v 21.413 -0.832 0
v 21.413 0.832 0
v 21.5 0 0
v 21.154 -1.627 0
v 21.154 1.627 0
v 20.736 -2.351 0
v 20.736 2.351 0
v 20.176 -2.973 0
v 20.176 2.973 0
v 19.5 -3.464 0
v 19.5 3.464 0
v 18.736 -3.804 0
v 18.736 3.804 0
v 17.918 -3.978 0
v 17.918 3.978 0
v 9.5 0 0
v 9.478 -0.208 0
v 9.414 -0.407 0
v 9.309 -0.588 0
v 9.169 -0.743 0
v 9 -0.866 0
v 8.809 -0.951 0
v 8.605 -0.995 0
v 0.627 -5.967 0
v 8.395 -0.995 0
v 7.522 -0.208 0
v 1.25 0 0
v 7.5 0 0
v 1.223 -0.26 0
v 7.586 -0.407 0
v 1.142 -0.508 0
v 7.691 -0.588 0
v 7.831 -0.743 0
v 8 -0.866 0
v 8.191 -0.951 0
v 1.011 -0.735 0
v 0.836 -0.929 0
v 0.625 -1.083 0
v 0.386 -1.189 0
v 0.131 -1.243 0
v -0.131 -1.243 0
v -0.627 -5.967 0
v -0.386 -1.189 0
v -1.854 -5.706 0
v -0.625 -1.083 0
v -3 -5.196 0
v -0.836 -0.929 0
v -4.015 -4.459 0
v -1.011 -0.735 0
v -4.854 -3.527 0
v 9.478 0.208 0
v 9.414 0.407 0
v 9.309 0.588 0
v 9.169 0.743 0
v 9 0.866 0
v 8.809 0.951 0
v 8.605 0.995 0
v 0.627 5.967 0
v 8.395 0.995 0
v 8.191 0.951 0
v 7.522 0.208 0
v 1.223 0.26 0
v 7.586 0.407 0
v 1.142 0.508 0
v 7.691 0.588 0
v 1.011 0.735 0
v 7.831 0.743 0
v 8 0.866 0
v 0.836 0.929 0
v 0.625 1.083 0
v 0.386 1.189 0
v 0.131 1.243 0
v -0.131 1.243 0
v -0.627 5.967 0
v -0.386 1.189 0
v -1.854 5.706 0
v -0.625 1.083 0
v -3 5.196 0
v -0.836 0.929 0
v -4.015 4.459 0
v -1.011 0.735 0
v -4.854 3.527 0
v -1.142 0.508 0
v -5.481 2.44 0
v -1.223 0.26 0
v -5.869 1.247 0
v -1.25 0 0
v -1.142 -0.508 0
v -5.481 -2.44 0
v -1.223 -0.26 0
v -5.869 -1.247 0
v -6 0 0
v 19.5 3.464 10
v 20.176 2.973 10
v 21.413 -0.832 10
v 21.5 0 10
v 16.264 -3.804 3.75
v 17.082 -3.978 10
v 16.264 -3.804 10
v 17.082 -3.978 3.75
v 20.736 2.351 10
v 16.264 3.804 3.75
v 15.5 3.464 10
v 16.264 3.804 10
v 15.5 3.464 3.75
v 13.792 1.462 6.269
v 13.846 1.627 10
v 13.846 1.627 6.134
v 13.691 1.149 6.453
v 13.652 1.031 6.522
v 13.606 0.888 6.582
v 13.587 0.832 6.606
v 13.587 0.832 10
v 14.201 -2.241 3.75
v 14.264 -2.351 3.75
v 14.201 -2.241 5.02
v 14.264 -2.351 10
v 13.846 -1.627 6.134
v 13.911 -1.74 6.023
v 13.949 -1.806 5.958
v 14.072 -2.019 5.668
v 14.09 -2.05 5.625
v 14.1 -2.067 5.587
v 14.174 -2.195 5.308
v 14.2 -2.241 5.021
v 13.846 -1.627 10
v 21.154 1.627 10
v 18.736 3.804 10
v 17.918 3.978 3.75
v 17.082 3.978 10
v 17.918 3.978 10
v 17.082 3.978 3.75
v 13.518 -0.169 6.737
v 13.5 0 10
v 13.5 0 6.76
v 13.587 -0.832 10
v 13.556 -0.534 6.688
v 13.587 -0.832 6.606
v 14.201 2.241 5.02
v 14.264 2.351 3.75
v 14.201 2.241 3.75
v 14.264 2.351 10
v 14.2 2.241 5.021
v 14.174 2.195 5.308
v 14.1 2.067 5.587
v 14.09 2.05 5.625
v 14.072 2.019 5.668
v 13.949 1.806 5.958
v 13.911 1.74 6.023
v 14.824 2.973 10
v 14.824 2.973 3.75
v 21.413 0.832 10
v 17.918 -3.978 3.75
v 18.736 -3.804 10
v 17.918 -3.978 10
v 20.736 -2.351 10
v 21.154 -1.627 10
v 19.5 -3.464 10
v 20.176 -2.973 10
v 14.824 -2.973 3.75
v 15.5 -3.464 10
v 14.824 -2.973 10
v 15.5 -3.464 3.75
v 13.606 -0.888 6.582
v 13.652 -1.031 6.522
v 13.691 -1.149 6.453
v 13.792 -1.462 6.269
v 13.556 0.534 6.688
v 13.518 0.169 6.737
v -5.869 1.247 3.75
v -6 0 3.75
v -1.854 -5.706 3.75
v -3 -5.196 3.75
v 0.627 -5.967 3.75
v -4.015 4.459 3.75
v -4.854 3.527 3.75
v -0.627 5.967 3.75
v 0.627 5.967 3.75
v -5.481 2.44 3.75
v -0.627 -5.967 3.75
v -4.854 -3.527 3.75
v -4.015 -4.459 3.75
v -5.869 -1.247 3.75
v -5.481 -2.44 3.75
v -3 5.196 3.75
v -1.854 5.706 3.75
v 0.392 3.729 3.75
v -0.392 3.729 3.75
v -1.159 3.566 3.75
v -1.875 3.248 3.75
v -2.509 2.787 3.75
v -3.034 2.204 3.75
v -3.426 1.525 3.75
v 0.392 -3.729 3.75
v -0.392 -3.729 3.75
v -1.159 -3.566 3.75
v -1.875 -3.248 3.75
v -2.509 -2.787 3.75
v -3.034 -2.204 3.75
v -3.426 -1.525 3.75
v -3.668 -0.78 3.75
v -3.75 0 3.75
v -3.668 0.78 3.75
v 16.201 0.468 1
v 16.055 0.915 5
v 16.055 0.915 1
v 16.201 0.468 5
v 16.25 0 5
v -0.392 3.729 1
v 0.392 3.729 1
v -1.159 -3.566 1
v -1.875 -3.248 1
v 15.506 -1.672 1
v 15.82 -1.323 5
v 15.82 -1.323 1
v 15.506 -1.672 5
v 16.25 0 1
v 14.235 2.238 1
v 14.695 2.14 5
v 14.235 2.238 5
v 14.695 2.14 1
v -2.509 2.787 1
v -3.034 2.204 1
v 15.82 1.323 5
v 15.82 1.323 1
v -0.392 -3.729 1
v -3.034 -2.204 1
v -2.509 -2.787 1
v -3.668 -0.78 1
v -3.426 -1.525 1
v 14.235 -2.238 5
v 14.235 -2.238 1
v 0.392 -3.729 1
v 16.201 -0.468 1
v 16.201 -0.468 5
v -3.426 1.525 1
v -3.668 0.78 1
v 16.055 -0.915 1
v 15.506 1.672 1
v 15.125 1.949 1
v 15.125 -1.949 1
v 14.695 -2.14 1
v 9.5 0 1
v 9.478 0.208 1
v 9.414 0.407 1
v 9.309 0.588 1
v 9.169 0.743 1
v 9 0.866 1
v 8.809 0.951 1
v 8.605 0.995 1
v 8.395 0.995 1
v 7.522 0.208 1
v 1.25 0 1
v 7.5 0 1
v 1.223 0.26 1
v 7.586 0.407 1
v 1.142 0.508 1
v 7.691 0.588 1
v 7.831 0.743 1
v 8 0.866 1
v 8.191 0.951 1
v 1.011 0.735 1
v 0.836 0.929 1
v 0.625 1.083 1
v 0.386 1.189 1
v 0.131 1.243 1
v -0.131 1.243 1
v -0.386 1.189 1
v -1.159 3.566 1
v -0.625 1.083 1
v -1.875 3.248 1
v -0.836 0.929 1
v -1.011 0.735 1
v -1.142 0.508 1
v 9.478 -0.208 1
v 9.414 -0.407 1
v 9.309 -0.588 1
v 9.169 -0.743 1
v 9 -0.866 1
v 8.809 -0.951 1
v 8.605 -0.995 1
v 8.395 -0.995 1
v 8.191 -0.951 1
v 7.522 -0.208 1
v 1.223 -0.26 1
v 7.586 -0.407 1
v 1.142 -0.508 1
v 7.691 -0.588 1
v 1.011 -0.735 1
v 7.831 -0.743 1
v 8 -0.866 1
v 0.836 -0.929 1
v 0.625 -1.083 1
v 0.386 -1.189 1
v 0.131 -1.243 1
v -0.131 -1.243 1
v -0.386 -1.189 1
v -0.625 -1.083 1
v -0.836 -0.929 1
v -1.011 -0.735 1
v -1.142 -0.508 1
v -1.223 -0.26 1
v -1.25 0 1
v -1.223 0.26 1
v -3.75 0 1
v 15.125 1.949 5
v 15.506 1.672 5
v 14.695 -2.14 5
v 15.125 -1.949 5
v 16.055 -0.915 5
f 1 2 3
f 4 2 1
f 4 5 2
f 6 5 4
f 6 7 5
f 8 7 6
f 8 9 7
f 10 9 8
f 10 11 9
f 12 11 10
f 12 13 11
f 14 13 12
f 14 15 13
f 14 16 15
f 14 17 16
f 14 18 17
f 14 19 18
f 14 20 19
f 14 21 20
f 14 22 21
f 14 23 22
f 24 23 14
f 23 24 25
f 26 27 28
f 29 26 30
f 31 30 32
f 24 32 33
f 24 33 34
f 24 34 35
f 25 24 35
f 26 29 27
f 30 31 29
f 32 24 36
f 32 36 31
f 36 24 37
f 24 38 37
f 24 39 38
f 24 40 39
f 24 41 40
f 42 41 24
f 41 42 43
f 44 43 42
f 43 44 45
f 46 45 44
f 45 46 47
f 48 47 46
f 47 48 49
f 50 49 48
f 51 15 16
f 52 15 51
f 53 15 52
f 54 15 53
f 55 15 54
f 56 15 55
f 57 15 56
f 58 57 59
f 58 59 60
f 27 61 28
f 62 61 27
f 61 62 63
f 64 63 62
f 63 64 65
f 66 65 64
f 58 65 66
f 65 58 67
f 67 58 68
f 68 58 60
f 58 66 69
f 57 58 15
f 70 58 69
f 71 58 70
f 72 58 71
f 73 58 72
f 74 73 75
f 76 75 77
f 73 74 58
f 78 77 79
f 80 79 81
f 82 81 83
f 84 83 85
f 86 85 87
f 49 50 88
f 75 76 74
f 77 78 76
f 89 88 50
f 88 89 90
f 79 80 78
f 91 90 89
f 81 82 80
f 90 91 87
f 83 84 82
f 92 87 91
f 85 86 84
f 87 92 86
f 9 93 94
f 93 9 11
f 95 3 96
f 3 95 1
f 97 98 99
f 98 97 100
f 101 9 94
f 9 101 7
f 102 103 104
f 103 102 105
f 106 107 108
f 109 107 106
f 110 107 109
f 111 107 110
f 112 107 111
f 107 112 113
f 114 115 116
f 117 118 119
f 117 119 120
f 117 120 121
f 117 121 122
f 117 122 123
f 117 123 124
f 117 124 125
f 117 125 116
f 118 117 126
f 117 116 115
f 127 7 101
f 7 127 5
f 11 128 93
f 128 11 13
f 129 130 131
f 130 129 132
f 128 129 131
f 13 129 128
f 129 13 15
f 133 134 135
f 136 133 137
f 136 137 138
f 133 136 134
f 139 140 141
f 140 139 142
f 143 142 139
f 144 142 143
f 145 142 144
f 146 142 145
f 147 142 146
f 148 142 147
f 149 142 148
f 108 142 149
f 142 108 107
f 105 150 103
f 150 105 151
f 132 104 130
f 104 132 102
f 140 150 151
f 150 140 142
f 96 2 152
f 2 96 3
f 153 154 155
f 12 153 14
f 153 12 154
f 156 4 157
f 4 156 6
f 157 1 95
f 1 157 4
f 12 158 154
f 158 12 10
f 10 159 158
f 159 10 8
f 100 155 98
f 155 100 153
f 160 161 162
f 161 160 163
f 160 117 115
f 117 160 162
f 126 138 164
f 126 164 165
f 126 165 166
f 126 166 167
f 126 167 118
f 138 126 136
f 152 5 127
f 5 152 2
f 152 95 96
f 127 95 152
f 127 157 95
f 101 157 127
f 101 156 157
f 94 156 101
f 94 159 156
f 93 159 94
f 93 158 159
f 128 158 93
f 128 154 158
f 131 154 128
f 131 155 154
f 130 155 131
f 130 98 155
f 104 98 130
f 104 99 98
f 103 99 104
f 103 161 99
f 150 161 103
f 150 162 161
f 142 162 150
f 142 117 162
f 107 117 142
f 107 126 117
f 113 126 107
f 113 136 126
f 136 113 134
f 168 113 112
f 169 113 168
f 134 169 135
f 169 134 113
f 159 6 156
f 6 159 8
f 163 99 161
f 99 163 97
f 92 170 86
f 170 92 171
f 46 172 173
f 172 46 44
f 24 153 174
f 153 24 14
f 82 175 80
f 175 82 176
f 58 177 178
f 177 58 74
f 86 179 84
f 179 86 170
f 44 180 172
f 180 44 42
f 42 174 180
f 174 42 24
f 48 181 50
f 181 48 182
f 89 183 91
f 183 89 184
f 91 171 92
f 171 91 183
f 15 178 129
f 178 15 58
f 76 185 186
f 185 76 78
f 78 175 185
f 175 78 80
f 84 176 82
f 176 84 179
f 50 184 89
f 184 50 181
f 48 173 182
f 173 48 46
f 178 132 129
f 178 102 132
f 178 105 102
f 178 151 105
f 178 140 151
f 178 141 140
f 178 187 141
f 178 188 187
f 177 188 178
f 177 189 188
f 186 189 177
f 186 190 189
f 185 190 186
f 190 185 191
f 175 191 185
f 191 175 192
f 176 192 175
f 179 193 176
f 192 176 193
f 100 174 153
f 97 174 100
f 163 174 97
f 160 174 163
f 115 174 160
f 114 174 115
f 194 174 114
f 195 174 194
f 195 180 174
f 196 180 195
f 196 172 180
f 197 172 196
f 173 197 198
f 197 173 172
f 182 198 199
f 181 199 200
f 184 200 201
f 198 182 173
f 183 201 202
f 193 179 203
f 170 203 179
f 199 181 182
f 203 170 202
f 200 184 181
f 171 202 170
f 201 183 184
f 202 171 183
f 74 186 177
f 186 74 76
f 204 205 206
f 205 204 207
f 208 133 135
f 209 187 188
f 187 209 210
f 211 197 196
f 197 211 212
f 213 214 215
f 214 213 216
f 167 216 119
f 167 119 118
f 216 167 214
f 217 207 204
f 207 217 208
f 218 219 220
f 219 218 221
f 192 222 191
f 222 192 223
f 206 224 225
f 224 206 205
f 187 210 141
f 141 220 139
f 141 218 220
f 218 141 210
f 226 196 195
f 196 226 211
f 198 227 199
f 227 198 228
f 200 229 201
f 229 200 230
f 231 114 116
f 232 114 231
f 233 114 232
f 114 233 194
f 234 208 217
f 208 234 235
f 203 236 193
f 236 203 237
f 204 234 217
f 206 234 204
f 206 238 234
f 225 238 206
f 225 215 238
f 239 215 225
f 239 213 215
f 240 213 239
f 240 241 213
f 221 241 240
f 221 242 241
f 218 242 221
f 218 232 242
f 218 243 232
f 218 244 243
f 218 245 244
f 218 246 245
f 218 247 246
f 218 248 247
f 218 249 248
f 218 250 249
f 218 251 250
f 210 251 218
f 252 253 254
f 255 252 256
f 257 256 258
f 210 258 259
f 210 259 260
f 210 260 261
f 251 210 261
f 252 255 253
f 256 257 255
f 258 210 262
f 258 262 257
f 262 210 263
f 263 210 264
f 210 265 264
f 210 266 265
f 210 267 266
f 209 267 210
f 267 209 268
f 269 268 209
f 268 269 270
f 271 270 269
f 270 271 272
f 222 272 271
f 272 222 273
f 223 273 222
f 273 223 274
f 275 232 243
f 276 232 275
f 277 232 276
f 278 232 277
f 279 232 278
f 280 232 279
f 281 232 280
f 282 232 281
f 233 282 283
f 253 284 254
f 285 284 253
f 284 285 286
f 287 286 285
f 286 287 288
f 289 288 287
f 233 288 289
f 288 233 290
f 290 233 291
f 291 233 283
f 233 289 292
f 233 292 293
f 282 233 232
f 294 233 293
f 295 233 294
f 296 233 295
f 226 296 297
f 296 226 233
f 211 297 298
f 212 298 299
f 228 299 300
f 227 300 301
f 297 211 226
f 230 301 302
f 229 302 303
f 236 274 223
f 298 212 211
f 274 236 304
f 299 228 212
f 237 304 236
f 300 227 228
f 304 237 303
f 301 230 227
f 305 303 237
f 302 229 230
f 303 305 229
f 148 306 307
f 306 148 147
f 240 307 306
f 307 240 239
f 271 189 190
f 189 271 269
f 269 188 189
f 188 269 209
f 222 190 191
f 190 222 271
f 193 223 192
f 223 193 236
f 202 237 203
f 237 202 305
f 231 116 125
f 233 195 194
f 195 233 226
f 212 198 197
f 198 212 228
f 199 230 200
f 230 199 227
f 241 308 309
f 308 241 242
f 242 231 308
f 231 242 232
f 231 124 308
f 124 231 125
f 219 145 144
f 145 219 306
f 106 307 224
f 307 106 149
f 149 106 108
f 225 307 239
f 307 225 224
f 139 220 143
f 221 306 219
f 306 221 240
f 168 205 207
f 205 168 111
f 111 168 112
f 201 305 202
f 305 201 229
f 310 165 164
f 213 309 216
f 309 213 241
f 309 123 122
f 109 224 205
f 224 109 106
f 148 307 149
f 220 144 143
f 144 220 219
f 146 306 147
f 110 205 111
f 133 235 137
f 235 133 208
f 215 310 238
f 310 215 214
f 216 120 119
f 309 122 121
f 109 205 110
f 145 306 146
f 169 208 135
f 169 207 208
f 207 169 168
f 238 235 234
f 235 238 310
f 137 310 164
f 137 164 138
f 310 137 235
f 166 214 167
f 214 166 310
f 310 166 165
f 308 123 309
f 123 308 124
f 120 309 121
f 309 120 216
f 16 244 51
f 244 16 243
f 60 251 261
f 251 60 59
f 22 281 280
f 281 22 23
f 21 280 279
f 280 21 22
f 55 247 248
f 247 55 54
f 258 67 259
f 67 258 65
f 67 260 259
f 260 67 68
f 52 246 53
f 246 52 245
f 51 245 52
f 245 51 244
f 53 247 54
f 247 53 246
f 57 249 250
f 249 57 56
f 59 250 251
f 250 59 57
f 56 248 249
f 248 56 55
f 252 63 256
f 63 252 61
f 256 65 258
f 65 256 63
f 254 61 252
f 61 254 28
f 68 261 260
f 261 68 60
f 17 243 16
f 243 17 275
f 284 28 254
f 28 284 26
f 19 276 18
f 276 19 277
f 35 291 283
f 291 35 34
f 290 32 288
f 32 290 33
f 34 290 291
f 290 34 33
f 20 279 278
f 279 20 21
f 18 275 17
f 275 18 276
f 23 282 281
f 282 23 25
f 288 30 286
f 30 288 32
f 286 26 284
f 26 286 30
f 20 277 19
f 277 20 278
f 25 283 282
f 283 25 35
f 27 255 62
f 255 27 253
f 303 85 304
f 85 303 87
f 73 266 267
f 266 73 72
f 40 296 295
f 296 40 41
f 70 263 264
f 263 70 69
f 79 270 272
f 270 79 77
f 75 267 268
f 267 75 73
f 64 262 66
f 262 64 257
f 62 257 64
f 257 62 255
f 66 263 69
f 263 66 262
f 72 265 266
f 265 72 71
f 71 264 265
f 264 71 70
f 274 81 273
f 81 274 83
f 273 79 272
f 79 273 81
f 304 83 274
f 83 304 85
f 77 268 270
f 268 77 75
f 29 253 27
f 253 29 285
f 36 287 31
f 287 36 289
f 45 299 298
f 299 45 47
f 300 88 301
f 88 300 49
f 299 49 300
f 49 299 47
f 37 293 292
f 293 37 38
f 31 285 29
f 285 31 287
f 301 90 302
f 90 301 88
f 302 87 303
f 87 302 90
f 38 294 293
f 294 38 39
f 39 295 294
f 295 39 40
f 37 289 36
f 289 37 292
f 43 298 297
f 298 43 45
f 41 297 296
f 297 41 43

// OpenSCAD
$fn = 30;

union() {
	//translate([12.5+5,0,0])
	//cylinder(d=8, h=10);

	difference() {

        union() {
			translate([12.5+5,0,0])
			cylinder(d=8, h=10);
	
			hull() {
			    translate([12.5+5,0,0])
			    cylinder(d=8, h=3.75);
			
			    cylinder(d=12, h=3.75);
			}
		}
	

		translate([0,0,1])
		hull() {
		    translate([14,0,0])
		    cylinder(d=4.5, h=4);
		
		    cylinder(d=7.5, h=12);
		}

		translate([8.5,0,-1])
		cylinder(d=2, h=10);

		//translate([0,0,-1])
		//cylinder(d = 6, h = 4);
	
		//translate([0,0,-.5])
		//cylinder(d = 2.5, h = 4);

		//translate([0,0,.75])
		//cylinder(d = 4.75, h = 4);
	
		translate([0,0,-.5])
		cylinder(d = 2.5, h = 4);

	}
}
